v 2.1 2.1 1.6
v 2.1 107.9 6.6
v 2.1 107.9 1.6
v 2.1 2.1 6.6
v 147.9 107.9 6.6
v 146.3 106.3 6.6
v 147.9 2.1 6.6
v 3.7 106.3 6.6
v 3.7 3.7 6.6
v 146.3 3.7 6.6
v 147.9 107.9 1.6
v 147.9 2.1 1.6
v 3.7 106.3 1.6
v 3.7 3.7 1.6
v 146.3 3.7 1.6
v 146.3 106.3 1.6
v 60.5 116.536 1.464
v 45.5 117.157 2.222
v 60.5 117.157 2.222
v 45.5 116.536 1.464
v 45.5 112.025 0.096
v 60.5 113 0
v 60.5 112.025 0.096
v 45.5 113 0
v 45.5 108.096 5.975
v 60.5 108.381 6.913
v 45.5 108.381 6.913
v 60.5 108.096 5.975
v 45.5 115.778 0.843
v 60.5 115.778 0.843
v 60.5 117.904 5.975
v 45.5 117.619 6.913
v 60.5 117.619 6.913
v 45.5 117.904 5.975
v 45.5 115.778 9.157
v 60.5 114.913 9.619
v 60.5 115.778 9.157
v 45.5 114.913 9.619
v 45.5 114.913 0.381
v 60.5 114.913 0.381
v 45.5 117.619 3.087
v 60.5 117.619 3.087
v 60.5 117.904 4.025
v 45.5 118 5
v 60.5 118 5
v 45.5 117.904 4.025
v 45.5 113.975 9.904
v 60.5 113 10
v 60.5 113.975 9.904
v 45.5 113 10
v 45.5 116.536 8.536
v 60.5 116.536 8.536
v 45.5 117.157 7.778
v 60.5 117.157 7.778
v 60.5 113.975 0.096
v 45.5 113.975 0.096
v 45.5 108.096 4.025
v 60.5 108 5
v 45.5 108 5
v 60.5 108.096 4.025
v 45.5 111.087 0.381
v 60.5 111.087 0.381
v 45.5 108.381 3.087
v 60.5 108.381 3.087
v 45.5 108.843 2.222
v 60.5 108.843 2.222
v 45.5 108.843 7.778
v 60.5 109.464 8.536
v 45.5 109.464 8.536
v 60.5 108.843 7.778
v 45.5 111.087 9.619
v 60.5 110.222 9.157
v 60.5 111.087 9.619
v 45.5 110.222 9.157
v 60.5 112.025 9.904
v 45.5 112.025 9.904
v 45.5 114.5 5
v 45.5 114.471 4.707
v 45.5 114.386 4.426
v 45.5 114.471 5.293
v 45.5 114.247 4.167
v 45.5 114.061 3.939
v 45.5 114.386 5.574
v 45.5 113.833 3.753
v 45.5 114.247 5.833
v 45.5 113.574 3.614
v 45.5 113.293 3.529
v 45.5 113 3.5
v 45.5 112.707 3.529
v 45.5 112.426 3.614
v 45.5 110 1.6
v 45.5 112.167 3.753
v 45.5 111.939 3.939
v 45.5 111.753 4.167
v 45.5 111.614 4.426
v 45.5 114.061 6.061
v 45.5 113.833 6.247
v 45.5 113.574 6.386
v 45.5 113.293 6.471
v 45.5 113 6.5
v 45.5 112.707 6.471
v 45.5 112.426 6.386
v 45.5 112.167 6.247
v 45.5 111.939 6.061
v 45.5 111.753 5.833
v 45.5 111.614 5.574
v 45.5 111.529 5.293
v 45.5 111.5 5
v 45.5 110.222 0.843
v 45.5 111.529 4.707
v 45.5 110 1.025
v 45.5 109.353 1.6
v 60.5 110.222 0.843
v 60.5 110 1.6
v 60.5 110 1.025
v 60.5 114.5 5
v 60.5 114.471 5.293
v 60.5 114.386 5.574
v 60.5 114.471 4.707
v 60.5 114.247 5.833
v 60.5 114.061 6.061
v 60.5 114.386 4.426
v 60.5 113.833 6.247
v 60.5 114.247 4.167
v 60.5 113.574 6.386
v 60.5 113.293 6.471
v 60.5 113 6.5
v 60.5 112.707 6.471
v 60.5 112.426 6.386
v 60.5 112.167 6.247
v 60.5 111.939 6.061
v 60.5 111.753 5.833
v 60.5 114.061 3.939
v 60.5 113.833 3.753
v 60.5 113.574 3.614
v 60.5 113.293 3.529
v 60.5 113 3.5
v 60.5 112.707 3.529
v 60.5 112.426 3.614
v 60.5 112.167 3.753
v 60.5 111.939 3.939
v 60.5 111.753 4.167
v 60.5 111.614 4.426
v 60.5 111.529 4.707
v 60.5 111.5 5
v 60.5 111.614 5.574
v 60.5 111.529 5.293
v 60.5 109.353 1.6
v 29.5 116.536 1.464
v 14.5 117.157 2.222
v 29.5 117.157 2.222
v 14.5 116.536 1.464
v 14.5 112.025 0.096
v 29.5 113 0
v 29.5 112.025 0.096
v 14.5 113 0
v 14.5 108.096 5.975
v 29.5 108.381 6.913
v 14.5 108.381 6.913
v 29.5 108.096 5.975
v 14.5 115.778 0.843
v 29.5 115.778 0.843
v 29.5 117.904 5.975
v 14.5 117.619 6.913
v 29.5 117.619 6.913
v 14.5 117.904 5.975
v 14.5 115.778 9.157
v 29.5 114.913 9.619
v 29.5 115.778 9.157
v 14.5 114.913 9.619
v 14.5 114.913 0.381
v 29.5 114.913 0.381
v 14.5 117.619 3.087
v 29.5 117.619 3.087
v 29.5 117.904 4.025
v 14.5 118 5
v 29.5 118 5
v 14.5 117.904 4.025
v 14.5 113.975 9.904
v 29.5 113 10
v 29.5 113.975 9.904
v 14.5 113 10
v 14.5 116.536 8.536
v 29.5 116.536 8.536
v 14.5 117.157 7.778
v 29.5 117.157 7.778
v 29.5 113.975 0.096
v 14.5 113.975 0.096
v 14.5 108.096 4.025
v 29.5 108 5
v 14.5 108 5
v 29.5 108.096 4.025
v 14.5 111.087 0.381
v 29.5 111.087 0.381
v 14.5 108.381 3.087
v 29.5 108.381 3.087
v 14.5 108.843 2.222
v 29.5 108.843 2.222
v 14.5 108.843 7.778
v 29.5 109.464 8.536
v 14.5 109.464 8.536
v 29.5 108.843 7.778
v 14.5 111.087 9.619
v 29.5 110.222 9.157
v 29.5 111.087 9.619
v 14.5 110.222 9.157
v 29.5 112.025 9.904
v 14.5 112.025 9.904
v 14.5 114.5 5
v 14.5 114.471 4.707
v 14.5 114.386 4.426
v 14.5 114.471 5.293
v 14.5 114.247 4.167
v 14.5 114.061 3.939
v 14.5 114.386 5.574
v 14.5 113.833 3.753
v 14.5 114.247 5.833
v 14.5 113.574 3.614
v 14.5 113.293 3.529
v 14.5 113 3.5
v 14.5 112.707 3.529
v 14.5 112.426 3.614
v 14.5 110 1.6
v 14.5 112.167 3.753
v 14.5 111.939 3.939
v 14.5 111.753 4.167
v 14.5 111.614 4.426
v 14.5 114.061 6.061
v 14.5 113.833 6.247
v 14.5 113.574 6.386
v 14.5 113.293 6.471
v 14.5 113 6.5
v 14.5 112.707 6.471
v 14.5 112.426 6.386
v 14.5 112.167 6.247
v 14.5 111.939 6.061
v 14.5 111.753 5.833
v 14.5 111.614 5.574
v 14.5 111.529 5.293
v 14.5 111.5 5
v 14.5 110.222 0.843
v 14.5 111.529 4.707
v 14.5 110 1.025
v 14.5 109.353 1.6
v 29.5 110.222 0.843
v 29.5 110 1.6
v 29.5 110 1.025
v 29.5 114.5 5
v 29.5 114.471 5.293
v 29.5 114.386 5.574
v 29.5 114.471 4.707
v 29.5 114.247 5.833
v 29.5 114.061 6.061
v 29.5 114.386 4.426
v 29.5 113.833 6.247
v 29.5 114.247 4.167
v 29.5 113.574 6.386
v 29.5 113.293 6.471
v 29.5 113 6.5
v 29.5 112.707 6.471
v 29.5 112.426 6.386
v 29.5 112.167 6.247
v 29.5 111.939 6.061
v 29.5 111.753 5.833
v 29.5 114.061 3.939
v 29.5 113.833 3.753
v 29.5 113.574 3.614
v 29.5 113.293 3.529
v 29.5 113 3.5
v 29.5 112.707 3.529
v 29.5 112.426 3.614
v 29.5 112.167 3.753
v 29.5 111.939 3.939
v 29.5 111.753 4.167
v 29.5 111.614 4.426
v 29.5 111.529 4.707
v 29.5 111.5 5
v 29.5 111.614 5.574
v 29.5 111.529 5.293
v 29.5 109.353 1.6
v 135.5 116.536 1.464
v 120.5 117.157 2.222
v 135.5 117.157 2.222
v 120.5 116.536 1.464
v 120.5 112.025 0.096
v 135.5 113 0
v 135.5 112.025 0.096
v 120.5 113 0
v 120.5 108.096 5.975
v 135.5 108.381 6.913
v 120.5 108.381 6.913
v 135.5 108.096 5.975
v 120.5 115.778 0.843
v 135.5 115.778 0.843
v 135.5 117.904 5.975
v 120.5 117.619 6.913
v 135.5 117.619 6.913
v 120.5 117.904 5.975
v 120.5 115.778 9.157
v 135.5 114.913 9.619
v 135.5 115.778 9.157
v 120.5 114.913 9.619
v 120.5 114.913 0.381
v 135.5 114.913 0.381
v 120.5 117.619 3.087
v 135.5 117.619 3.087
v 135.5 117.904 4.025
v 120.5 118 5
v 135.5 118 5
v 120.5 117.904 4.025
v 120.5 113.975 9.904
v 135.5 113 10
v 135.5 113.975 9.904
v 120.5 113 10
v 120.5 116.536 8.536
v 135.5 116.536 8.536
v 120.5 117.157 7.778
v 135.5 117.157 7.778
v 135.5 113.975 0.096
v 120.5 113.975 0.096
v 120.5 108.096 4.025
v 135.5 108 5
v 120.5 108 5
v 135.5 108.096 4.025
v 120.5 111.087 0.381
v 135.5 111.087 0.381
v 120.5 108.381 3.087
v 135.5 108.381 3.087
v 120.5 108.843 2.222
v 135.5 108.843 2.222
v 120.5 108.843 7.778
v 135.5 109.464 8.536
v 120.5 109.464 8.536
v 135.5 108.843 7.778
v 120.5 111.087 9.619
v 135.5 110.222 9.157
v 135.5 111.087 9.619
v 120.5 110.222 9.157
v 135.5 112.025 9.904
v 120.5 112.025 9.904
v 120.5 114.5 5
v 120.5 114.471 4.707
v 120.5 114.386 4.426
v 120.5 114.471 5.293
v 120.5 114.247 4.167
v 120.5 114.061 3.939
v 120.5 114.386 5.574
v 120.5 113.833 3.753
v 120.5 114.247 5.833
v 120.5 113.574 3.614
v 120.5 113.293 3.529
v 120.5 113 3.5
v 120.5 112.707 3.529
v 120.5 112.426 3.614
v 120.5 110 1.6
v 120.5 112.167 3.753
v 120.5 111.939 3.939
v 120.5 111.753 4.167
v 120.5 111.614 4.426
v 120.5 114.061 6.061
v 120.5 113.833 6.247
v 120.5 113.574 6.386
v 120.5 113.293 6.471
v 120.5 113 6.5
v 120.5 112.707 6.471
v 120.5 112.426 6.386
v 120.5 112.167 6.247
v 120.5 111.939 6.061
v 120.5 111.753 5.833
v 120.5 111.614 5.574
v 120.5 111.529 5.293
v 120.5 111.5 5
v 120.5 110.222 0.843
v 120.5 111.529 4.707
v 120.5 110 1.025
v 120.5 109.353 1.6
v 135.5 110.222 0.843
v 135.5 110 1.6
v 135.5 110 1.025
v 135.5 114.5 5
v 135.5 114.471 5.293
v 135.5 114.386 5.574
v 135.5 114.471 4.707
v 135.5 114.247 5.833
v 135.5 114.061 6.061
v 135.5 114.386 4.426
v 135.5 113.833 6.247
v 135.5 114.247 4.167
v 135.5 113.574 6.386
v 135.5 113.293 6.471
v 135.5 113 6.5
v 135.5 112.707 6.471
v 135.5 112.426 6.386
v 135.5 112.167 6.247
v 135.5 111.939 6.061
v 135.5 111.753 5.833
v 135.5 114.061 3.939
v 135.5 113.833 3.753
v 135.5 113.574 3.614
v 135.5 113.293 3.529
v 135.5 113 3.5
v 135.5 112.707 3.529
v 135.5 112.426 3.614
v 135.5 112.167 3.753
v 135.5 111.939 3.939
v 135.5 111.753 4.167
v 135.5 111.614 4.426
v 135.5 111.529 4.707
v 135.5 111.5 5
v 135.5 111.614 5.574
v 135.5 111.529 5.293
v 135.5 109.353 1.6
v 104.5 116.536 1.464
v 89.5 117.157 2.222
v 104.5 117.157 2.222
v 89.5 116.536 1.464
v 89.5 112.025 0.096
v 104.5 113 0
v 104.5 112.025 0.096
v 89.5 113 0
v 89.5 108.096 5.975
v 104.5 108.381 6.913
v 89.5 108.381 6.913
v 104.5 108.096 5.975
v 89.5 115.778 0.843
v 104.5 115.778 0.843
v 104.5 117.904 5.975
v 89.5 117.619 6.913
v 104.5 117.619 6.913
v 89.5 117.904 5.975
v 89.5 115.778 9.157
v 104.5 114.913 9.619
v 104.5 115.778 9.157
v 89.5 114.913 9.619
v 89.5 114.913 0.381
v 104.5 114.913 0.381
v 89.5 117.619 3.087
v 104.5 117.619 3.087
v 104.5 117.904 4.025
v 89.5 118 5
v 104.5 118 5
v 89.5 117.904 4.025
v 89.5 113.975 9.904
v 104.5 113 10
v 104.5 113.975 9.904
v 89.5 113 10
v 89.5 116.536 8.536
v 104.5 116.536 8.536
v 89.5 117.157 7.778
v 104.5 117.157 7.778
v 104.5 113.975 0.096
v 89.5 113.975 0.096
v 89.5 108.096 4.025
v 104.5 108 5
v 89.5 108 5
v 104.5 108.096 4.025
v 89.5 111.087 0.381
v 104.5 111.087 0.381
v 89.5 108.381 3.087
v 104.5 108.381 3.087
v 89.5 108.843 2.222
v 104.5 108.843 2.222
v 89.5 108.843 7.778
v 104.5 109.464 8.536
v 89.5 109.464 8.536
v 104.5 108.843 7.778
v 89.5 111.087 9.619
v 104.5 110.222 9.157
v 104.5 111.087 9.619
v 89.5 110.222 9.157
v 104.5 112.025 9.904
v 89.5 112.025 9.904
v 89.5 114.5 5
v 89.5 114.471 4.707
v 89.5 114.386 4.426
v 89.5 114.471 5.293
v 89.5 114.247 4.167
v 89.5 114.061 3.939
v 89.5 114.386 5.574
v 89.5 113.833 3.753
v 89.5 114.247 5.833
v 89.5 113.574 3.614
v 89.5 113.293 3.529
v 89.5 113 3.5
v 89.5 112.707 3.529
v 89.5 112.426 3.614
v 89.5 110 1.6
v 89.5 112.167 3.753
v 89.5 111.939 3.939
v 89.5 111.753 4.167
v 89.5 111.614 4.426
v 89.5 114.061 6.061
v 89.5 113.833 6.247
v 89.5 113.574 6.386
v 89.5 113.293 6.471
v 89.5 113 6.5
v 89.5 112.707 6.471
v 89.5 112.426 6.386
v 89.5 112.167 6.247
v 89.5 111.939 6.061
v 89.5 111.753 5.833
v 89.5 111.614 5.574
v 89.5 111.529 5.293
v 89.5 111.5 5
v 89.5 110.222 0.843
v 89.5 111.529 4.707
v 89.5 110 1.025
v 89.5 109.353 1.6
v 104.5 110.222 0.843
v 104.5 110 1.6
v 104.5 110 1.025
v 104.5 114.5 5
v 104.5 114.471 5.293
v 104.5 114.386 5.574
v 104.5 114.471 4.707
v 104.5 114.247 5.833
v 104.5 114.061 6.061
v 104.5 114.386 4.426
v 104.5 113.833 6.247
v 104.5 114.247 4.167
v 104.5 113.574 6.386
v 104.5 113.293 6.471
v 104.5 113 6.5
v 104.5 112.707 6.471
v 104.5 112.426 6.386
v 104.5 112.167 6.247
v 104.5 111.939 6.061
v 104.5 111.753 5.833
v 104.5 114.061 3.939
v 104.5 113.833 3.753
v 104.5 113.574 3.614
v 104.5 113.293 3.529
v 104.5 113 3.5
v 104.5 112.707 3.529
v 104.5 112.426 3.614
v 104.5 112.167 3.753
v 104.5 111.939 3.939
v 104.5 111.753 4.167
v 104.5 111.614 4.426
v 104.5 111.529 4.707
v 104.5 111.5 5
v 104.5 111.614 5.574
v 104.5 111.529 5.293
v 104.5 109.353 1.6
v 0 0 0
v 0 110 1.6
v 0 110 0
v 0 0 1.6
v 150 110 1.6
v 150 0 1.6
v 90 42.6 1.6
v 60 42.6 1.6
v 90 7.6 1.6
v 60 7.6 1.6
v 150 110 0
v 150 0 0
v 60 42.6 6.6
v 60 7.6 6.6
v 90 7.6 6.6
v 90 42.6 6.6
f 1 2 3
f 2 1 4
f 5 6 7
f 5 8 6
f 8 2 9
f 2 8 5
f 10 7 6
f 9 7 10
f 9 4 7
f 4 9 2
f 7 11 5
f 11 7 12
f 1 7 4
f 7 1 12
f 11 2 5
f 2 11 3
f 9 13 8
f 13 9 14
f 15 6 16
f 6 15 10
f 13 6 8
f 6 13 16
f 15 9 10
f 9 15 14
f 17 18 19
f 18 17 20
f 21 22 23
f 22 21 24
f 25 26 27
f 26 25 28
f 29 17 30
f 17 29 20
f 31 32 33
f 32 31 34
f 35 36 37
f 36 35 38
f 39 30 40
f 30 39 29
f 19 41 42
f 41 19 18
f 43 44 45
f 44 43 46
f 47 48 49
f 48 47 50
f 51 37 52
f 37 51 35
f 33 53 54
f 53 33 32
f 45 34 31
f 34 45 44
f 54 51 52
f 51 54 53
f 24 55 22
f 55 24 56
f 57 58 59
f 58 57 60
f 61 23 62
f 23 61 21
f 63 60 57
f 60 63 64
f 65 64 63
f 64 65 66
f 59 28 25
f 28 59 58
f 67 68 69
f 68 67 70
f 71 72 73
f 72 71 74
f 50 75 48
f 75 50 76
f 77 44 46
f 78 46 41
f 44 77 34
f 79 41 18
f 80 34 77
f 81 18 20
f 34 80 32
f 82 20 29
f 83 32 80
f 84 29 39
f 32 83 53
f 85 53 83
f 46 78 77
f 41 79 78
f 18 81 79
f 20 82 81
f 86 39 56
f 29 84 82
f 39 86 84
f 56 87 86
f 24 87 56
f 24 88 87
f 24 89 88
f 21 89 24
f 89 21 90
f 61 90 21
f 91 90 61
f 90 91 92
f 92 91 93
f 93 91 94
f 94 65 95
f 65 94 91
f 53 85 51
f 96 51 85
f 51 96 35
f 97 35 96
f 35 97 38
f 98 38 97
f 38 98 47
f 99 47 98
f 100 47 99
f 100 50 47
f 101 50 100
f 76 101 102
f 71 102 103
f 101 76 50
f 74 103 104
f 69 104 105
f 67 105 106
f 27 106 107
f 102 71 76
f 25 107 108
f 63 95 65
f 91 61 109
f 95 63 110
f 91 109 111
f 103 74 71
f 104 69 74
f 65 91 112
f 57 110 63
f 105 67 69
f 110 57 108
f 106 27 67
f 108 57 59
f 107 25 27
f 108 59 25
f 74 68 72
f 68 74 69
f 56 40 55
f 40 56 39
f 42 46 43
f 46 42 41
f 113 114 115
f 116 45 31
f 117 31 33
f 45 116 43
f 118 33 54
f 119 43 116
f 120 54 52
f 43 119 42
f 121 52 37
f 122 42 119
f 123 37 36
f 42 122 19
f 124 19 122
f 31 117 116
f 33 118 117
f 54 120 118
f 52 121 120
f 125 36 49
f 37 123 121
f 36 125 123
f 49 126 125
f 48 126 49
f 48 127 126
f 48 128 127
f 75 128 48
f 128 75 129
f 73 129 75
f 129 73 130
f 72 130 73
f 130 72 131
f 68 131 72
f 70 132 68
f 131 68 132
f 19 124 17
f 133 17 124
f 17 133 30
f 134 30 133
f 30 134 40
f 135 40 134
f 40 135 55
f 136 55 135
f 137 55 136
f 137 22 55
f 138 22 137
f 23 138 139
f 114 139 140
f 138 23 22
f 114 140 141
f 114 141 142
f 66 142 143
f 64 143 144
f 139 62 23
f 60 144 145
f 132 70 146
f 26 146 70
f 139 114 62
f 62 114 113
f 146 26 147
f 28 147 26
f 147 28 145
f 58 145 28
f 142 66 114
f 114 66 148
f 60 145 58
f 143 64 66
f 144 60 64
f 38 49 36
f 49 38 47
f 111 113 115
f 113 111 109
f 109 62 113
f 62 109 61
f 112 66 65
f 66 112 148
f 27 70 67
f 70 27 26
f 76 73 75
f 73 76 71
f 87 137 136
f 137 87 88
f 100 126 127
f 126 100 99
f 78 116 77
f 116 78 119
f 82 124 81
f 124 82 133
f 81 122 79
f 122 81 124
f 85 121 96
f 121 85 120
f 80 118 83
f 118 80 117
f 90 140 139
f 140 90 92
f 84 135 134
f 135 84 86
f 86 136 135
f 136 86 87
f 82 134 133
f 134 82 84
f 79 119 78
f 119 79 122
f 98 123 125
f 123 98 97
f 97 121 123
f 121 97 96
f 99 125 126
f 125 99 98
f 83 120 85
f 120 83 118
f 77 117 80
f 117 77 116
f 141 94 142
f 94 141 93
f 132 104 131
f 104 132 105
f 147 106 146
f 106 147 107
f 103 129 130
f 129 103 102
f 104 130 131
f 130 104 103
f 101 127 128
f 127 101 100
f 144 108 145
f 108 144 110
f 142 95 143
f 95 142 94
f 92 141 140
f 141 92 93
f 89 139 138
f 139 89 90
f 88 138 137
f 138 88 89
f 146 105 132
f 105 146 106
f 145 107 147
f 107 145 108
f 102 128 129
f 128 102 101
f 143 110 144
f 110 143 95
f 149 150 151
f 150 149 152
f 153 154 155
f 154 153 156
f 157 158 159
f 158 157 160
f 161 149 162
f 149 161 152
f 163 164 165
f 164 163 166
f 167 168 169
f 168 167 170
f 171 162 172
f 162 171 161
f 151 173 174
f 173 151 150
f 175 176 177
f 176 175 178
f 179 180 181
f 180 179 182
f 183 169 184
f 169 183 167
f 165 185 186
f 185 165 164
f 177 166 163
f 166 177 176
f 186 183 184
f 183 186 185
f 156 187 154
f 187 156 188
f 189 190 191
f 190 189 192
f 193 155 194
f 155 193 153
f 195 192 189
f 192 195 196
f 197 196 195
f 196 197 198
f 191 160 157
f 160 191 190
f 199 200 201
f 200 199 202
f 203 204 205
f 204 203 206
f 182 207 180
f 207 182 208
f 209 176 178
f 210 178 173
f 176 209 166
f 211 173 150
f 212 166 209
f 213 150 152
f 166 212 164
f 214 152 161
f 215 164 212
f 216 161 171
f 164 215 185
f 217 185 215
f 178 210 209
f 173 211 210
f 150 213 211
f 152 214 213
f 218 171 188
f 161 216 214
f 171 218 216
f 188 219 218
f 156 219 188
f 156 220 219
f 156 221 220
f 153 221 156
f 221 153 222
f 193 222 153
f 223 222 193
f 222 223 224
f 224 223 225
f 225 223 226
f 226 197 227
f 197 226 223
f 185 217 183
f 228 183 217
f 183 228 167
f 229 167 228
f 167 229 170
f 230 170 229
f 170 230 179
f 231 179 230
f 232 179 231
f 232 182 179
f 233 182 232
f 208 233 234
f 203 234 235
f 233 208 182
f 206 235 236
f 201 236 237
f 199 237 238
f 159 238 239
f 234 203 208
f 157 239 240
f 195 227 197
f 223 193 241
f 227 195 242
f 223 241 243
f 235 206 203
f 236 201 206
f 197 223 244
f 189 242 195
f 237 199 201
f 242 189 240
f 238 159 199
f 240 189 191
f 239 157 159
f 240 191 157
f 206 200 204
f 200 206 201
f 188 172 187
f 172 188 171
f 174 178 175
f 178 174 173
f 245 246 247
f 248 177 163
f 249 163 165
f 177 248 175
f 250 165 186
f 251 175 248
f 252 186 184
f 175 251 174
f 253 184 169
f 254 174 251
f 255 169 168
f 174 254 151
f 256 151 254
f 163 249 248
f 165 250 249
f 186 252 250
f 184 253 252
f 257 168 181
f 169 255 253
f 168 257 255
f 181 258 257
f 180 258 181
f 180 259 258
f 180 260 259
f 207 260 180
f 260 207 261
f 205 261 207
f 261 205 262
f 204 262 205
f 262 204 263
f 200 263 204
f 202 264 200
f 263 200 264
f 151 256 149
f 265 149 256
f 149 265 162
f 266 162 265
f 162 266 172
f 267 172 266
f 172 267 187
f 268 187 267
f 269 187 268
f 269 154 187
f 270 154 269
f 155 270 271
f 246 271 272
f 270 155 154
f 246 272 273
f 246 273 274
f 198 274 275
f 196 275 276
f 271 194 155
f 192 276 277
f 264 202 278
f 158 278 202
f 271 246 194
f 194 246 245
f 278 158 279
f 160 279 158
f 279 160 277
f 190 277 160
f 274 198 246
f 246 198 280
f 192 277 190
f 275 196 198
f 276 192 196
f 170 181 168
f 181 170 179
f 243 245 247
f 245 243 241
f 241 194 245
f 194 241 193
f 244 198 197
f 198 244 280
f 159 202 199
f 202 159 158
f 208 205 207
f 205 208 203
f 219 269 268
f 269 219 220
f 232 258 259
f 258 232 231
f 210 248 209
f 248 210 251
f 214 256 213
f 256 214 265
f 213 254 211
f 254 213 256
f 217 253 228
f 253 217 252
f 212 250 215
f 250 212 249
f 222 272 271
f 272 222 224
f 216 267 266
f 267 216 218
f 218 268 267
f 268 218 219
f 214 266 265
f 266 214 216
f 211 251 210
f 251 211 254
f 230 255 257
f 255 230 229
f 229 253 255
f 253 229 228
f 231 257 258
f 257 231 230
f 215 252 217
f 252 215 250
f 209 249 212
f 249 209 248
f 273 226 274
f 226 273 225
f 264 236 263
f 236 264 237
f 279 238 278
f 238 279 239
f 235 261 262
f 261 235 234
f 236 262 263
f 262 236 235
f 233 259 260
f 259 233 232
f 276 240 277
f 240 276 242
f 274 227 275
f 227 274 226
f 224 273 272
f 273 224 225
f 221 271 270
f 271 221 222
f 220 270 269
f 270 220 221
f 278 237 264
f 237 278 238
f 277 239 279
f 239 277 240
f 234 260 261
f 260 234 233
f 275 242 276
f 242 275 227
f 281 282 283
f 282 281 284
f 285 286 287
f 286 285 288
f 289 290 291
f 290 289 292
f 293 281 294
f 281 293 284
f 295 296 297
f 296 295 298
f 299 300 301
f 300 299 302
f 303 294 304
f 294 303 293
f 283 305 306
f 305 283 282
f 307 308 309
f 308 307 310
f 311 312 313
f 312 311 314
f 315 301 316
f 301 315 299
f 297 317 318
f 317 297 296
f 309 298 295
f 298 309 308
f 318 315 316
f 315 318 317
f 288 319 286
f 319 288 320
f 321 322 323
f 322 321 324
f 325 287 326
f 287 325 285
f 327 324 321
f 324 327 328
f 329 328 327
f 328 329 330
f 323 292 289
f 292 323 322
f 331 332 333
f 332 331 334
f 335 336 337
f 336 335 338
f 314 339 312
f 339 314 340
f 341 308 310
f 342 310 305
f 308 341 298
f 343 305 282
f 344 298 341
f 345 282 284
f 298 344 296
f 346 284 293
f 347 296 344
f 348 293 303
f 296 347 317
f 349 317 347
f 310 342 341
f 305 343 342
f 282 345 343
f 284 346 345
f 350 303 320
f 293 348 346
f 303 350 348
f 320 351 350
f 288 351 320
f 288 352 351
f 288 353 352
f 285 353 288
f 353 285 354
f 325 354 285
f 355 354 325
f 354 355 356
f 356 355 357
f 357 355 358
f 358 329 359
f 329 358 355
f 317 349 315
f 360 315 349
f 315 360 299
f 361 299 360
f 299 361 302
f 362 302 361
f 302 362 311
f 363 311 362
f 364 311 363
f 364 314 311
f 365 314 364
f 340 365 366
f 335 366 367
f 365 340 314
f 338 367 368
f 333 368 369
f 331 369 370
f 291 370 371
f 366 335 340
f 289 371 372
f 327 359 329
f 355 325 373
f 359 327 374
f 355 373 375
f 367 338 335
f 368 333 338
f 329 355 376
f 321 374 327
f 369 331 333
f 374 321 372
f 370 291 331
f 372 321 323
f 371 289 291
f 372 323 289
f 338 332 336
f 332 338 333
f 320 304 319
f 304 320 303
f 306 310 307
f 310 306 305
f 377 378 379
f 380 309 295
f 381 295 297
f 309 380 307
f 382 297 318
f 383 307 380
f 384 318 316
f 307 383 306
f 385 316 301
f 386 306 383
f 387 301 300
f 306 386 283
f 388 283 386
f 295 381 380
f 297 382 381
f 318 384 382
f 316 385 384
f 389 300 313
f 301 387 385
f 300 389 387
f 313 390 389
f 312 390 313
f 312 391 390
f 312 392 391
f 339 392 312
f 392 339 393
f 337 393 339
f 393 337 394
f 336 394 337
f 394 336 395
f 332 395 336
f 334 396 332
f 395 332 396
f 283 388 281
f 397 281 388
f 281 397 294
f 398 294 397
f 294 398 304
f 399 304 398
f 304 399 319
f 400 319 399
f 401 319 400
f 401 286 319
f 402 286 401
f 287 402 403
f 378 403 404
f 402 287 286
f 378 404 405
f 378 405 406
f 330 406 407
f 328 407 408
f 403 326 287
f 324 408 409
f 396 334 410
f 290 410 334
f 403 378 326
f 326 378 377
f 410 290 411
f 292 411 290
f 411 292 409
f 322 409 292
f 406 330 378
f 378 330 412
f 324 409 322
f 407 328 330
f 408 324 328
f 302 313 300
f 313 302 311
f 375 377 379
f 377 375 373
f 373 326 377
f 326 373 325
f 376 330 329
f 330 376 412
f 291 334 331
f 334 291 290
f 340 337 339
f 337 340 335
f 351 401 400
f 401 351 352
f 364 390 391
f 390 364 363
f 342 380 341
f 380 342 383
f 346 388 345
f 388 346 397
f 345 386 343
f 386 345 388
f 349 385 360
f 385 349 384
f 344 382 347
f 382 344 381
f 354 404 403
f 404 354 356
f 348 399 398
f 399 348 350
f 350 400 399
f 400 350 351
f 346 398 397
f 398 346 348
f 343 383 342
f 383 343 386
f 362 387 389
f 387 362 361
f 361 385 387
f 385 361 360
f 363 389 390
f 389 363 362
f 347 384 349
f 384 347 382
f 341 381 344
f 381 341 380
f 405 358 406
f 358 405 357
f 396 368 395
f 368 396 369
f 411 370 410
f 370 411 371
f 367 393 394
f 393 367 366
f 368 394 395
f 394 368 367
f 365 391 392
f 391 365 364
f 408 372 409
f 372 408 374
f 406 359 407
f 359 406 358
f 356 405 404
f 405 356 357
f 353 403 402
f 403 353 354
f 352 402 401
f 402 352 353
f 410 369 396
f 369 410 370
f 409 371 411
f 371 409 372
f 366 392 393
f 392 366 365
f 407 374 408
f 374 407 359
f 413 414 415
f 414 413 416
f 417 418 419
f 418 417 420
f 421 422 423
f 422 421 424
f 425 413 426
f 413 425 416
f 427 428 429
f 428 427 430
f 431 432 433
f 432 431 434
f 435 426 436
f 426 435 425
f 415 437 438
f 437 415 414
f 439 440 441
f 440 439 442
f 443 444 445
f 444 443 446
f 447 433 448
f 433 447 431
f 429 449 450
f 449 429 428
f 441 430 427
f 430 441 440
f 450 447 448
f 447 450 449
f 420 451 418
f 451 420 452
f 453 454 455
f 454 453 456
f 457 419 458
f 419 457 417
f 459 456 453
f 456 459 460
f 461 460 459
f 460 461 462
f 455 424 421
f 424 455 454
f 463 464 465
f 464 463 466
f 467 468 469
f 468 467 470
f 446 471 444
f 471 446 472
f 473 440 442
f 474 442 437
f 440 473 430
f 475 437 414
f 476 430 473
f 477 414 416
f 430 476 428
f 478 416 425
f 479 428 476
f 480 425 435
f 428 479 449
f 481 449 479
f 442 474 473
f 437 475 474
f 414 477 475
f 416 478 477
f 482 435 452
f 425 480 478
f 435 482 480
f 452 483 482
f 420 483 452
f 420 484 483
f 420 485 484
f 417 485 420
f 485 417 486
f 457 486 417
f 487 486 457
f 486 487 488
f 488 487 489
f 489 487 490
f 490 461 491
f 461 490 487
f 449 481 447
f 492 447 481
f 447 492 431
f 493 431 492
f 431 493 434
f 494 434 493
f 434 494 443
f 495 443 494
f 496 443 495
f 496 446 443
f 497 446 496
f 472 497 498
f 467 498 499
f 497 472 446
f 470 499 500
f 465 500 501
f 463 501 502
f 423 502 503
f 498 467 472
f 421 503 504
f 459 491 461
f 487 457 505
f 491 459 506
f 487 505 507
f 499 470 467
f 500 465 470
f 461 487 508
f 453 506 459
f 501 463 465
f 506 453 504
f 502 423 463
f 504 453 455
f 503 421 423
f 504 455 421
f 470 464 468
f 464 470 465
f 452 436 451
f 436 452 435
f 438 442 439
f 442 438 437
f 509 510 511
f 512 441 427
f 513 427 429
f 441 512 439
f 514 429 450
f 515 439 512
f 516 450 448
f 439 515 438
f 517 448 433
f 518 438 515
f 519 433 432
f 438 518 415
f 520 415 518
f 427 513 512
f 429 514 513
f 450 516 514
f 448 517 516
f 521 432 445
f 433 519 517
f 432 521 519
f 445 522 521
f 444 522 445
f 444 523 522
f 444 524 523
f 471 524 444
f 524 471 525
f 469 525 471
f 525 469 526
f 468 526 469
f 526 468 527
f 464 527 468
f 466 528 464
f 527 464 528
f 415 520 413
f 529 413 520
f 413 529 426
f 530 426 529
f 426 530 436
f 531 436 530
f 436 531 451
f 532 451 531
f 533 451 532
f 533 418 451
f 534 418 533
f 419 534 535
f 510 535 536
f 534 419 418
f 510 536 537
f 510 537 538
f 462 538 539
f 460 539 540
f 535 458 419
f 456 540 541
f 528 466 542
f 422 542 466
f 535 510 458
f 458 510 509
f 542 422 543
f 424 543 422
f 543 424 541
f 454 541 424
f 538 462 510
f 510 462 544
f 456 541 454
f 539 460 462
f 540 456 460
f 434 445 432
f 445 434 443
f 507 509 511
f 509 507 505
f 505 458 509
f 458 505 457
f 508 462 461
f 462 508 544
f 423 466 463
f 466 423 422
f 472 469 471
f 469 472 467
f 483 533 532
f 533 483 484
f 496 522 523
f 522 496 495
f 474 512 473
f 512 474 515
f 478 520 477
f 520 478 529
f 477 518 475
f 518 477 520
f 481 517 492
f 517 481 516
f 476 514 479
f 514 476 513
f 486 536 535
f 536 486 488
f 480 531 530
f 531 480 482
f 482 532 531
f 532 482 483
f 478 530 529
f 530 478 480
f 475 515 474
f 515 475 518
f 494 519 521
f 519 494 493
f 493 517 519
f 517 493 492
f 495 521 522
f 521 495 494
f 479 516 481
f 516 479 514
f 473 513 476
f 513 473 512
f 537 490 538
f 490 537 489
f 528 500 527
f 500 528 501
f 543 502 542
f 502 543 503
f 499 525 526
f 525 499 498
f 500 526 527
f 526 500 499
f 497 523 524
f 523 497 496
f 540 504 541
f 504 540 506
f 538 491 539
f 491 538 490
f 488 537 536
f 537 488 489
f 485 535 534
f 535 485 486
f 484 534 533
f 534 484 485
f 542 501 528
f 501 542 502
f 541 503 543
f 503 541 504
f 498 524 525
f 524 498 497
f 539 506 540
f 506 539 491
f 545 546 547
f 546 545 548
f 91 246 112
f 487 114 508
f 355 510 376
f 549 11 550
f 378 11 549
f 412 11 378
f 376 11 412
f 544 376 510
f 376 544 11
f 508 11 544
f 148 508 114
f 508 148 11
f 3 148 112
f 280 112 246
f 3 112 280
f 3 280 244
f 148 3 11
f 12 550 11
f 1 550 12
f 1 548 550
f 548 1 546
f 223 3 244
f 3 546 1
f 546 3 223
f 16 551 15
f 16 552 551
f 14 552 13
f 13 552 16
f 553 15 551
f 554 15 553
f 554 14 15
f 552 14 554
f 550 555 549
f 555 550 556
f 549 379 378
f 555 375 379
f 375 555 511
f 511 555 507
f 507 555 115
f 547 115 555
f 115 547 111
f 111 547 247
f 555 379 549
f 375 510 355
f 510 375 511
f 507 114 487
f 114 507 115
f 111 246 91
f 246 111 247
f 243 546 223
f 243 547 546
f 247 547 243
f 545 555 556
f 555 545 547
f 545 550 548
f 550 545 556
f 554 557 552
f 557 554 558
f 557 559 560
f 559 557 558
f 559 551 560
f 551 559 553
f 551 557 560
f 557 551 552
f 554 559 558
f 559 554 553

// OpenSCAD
// Smart Delivery Bin - Lid Only
// All dimensions in millimeters (mm)

/* --- Parameters --- */
width = 150;
depth = 110;
height = 110;
wall = 1.6;

// Hinge Parameters
hinge_r = 5;
hinge_hole_r = 1.5; // 3mm diameter hole 
hinge_w = 15;

/* --- Modules --- */

module hinge_knuckle() {
    difference() {
        cylinder(r=hinge_r, h=hinge_w, $fn=32);
        translate([0,0,-1]) cylinder(r=hinge_hole_r, h=hinge_w+2, $fn=32);
    }
}

module lid() {
    union() {
        difference() {
            // Lid Base 
            cube([width, depth, wall]);
        }
        
        // Inner lip to align the lid
        translate([wall + 0.5, wall + 0.5, wall - 0.1])
            difference() {
                cube([width - 2*wall - 1, depth - 2*wall - 1, 5.1]);
                translate([wall, wall, -1]) cube([width - 4*wall - 1, depth - 4*wall - 1, 7.1]); 
            }
            
        // Lid Hinges
        // Shifted to depth + 3 to align with the box hinges
        translate([width/4 + hinge_w/2 + 0.5, depth + 3, 5]) rotate([0, 90, 0]) hinge_knuckle();
        translate([width/4 - hinge_w*1.5 - 0.5, depth + 3, 5]) rotate([0, 90, 0]) hinge_knuckle();
        
        translate([3*width/4 + hinge_w/2 + 0.5, depth + 3, 5]) rotate([0, 90, 0]) hinge_knuckle();
        translate([3*width/4 - hinge_w*1.5 - 0.5, depth + 3, 5]) rotate([0, 90, 0]) hinge_knuckle();
        
        // Solenoid Mounting Block (Now pointing UP in local space so the lid is flat on the bottom!)
        translate([width/2 - 15, wall + 6, wall]) cube([30, 35, 5]);
    }
}

// Render the lid
lid();
